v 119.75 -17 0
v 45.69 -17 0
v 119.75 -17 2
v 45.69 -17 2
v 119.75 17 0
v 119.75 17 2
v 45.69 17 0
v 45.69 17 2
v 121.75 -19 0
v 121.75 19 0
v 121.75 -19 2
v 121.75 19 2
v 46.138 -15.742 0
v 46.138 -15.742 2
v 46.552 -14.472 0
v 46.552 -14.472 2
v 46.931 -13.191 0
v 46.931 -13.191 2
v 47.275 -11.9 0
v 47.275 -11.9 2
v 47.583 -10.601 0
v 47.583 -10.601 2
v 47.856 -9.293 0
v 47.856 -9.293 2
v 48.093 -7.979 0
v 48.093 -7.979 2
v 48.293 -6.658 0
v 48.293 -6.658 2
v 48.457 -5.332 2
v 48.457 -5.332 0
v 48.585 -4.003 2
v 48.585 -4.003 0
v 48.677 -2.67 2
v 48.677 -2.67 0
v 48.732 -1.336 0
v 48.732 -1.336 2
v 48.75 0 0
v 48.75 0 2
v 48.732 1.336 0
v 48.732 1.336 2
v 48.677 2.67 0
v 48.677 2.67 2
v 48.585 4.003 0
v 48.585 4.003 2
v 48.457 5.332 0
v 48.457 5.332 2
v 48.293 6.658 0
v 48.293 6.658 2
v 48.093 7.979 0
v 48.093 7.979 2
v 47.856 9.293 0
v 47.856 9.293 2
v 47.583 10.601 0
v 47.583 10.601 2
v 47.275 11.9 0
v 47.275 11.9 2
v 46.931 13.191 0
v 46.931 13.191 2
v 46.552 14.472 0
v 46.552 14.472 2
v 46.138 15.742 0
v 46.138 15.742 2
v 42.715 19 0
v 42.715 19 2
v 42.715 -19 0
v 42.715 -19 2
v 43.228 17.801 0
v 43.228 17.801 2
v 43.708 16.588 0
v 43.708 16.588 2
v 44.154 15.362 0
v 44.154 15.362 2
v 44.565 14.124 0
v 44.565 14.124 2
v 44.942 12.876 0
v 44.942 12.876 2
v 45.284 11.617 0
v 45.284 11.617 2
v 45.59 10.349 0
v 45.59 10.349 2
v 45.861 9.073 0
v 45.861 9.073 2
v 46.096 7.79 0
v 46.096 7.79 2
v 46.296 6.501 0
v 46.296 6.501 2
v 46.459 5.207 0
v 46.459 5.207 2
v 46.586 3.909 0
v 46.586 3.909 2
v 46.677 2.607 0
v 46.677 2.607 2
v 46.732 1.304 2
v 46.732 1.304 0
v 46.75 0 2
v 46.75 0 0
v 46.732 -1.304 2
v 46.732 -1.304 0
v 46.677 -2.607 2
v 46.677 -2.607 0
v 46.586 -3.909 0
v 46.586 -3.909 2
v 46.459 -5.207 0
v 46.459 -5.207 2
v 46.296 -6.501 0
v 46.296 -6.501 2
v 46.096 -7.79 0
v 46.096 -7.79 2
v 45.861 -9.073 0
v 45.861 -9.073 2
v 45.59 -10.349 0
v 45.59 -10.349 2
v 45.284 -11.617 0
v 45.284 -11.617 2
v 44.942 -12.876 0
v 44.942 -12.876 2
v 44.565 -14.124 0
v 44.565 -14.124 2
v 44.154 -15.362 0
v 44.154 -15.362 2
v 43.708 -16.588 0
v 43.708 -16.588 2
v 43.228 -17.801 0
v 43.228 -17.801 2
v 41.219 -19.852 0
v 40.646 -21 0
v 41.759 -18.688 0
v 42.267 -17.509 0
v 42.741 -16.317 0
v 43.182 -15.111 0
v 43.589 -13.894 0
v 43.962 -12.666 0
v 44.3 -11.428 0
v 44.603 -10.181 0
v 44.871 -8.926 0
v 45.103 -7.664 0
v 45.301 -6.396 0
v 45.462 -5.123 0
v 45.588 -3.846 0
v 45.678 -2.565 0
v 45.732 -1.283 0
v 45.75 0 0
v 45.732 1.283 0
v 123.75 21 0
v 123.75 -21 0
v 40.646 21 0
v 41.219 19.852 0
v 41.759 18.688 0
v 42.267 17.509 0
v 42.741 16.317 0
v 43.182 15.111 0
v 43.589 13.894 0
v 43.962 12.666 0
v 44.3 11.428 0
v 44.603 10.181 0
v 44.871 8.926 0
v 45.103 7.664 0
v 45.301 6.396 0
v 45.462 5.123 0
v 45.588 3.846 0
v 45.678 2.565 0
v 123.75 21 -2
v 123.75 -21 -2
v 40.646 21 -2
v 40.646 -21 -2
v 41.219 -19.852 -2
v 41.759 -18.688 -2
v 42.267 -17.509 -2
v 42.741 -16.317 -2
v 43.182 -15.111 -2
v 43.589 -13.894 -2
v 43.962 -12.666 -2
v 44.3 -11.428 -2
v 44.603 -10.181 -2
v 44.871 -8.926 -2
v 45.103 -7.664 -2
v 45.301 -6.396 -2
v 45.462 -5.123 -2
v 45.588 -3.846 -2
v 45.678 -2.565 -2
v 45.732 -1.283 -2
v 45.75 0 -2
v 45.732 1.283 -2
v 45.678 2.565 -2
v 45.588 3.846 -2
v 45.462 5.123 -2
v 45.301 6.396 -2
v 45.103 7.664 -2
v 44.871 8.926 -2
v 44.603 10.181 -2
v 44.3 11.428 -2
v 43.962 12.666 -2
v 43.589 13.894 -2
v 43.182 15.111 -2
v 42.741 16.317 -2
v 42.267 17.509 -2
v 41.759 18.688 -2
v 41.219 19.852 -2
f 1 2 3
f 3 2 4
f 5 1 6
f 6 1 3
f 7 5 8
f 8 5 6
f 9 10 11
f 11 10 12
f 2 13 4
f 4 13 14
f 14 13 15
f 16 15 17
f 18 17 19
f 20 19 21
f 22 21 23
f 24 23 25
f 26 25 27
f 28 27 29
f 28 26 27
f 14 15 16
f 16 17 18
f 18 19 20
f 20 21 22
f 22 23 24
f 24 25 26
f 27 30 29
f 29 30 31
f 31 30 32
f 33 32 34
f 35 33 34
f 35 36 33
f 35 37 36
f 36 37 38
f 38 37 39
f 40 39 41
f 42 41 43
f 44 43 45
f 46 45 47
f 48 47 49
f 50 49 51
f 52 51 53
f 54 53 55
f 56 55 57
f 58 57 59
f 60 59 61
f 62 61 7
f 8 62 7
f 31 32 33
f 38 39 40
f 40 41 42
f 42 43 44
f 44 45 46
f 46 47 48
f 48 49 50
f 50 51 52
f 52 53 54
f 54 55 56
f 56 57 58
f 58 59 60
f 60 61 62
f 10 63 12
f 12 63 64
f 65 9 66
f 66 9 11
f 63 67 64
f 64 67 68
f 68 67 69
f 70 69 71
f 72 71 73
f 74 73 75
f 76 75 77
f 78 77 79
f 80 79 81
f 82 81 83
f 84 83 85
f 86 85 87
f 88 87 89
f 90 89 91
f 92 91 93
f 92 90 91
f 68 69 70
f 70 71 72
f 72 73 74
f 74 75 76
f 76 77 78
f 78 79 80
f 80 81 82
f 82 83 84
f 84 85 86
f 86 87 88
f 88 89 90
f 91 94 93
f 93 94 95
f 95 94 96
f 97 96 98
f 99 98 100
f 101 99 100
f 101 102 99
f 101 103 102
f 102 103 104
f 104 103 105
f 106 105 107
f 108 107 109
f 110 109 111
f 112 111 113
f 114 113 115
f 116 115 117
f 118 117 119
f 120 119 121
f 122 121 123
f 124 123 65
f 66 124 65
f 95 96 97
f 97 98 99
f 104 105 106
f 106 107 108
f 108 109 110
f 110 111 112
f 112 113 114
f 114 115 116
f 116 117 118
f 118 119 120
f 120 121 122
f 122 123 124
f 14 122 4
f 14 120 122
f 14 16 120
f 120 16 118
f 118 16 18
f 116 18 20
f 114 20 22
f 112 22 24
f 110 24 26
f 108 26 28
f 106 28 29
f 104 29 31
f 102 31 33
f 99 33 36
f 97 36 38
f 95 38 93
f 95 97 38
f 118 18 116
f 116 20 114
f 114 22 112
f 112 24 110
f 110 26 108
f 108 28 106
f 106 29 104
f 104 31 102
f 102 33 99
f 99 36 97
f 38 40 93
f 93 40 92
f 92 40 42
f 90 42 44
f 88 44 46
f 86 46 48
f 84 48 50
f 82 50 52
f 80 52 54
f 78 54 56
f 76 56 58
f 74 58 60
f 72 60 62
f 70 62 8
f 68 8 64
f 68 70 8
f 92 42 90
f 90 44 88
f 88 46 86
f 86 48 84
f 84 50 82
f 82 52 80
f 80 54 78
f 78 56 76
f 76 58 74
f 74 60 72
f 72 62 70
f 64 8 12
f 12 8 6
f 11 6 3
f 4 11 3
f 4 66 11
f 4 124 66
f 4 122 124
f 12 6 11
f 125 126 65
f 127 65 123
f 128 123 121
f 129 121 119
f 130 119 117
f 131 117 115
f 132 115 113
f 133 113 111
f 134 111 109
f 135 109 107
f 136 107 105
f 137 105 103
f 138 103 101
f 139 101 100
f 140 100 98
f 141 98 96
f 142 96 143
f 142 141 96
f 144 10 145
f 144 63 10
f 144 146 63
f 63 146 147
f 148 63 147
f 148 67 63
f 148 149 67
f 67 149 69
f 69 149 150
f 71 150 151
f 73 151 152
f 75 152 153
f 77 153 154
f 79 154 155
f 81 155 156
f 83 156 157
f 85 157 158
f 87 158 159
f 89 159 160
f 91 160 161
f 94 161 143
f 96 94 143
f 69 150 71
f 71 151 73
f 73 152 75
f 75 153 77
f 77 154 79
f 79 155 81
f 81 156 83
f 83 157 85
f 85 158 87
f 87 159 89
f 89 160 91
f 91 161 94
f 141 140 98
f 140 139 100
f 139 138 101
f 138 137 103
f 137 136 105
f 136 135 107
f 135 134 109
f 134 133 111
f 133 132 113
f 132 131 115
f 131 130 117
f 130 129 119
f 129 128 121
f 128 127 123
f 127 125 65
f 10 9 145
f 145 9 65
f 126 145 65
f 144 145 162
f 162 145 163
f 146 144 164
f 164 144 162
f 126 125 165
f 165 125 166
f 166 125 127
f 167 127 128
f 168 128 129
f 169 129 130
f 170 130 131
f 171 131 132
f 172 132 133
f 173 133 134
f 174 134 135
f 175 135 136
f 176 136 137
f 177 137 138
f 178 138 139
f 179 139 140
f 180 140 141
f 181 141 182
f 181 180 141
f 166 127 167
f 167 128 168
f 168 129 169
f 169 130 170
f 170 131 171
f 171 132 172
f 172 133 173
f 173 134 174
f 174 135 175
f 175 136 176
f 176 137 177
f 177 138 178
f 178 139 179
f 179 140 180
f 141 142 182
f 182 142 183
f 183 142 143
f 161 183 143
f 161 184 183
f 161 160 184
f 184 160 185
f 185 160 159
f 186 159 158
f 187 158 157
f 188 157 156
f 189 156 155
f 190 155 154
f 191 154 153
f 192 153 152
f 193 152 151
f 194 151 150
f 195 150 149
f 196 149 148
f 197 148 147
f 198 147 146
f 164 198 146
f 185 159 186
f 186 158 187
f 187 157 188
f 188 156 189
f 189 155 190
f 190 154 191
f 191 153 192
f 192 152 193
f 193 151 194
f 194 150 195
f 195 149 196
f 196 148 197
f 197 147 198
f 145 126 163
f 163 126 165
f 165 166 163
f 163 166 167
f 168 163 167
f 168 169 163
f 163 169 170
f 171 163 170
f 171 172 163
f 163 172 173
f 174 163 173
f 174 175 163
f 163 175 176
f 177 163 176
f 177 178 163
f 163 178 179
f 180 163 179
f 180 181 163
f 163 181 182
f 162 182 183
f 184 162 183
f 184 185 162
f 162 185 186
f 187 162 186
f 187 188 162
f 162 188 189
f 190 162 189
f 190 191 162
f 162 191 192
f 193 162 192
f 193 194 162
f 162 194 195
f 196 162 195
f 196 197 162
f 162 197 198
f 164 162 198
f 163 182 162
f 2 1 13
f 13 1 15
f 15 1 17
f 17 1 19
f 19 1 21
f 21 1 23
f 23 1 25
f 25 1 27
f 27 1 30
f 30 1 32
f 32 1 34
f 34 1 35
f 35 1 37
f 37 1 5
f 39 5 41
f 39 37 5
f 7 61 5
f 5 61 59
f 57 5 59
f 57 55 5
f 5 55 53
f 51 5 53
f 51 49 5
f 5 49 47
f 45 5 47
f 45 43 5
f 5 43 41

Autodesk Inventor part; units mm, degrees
ref_plane "YZ Plane" through (0, 0, 0) normal (1, 0, 0) x (0, 1, 0)
ref_plane "XZ Plane" through (0, 0, 0) normal (0, 1, 0) x (-1, 0, 0)
ref_plane "XY Plane" through (0, 0, 0) normal (0, 0, 1) x (1, 0, 0)
sketch "Sketch1" plane through (0, 0, 0) normal (0, 0, 1) x (1, 0, 0)
  circle A0 centre (0, 0) radius 45.75
  circle A1 centre (0, 0) radius 46.75
  line L0 (45.75, -0.0157) -> (46.75, -0.0157) construction
  line L1 (42.7149, 19) -> (121.75, 19)
  line L2 (121.75, 19) -> (121.75, -19)
  line L3 (121.75, -19) -> (42.7149, -19)
  line L4 (41.768, 21) -> (123.75, 21)
  line L5 (123.75, 21) -> (123.75, -21)
  line L6 (123.75, -21) -> (41.768, -21)
  line L7 (82.759, 21) -> (82.759, 19) construction
  line L8 (121.75, 0) -> (123.75, 0) construction
  line L9 (98.0367, -19) -> (98.0367, -21) construction
  line L10 (0, 0) -> (121.75, 0) construction
  line L11 (41.768, 21) -> (40.6456, 21)
  line L12 (41.768, -21) -> (40.6456, -21)
  line L13 (45.6899, 17) -> (119.75, 17)
  line L14 (119.75, 17) -> (119.75, -17)
  arc A2 (44.895, -19) -> (44.895, 19) centre (0, 0) ccw
  line L15 (119.75, -17) -> (45.6899, -17)
  dimension "d0" = 91.5
  dimension "d2" = 1
  dimension "d3" = 75
  dimension "d4" = 38
  dimension "d5" = 2
  dimension "d62" = 2
  dimension "d63" = 2
extrude "Extrusion13" add sketch "Sketch1" against normal blind 2 contours A0 L11 A1 L12 | L4 L5 L6 A1 L3 L2 L1 | L1 A2 L3 A1 | L1 L2 L3 A2 L15 L14 L13 | L13 L14 L15 A2 picked at (42.2726, -18.1004)
extrude "Extrusion14" add sketch "Sketch1" along normal blind 2 contours L1 A2 L3 A1 | L1 L2 L3 A2 L15 L14 L13
properties part number "Pump lid MM0312"
